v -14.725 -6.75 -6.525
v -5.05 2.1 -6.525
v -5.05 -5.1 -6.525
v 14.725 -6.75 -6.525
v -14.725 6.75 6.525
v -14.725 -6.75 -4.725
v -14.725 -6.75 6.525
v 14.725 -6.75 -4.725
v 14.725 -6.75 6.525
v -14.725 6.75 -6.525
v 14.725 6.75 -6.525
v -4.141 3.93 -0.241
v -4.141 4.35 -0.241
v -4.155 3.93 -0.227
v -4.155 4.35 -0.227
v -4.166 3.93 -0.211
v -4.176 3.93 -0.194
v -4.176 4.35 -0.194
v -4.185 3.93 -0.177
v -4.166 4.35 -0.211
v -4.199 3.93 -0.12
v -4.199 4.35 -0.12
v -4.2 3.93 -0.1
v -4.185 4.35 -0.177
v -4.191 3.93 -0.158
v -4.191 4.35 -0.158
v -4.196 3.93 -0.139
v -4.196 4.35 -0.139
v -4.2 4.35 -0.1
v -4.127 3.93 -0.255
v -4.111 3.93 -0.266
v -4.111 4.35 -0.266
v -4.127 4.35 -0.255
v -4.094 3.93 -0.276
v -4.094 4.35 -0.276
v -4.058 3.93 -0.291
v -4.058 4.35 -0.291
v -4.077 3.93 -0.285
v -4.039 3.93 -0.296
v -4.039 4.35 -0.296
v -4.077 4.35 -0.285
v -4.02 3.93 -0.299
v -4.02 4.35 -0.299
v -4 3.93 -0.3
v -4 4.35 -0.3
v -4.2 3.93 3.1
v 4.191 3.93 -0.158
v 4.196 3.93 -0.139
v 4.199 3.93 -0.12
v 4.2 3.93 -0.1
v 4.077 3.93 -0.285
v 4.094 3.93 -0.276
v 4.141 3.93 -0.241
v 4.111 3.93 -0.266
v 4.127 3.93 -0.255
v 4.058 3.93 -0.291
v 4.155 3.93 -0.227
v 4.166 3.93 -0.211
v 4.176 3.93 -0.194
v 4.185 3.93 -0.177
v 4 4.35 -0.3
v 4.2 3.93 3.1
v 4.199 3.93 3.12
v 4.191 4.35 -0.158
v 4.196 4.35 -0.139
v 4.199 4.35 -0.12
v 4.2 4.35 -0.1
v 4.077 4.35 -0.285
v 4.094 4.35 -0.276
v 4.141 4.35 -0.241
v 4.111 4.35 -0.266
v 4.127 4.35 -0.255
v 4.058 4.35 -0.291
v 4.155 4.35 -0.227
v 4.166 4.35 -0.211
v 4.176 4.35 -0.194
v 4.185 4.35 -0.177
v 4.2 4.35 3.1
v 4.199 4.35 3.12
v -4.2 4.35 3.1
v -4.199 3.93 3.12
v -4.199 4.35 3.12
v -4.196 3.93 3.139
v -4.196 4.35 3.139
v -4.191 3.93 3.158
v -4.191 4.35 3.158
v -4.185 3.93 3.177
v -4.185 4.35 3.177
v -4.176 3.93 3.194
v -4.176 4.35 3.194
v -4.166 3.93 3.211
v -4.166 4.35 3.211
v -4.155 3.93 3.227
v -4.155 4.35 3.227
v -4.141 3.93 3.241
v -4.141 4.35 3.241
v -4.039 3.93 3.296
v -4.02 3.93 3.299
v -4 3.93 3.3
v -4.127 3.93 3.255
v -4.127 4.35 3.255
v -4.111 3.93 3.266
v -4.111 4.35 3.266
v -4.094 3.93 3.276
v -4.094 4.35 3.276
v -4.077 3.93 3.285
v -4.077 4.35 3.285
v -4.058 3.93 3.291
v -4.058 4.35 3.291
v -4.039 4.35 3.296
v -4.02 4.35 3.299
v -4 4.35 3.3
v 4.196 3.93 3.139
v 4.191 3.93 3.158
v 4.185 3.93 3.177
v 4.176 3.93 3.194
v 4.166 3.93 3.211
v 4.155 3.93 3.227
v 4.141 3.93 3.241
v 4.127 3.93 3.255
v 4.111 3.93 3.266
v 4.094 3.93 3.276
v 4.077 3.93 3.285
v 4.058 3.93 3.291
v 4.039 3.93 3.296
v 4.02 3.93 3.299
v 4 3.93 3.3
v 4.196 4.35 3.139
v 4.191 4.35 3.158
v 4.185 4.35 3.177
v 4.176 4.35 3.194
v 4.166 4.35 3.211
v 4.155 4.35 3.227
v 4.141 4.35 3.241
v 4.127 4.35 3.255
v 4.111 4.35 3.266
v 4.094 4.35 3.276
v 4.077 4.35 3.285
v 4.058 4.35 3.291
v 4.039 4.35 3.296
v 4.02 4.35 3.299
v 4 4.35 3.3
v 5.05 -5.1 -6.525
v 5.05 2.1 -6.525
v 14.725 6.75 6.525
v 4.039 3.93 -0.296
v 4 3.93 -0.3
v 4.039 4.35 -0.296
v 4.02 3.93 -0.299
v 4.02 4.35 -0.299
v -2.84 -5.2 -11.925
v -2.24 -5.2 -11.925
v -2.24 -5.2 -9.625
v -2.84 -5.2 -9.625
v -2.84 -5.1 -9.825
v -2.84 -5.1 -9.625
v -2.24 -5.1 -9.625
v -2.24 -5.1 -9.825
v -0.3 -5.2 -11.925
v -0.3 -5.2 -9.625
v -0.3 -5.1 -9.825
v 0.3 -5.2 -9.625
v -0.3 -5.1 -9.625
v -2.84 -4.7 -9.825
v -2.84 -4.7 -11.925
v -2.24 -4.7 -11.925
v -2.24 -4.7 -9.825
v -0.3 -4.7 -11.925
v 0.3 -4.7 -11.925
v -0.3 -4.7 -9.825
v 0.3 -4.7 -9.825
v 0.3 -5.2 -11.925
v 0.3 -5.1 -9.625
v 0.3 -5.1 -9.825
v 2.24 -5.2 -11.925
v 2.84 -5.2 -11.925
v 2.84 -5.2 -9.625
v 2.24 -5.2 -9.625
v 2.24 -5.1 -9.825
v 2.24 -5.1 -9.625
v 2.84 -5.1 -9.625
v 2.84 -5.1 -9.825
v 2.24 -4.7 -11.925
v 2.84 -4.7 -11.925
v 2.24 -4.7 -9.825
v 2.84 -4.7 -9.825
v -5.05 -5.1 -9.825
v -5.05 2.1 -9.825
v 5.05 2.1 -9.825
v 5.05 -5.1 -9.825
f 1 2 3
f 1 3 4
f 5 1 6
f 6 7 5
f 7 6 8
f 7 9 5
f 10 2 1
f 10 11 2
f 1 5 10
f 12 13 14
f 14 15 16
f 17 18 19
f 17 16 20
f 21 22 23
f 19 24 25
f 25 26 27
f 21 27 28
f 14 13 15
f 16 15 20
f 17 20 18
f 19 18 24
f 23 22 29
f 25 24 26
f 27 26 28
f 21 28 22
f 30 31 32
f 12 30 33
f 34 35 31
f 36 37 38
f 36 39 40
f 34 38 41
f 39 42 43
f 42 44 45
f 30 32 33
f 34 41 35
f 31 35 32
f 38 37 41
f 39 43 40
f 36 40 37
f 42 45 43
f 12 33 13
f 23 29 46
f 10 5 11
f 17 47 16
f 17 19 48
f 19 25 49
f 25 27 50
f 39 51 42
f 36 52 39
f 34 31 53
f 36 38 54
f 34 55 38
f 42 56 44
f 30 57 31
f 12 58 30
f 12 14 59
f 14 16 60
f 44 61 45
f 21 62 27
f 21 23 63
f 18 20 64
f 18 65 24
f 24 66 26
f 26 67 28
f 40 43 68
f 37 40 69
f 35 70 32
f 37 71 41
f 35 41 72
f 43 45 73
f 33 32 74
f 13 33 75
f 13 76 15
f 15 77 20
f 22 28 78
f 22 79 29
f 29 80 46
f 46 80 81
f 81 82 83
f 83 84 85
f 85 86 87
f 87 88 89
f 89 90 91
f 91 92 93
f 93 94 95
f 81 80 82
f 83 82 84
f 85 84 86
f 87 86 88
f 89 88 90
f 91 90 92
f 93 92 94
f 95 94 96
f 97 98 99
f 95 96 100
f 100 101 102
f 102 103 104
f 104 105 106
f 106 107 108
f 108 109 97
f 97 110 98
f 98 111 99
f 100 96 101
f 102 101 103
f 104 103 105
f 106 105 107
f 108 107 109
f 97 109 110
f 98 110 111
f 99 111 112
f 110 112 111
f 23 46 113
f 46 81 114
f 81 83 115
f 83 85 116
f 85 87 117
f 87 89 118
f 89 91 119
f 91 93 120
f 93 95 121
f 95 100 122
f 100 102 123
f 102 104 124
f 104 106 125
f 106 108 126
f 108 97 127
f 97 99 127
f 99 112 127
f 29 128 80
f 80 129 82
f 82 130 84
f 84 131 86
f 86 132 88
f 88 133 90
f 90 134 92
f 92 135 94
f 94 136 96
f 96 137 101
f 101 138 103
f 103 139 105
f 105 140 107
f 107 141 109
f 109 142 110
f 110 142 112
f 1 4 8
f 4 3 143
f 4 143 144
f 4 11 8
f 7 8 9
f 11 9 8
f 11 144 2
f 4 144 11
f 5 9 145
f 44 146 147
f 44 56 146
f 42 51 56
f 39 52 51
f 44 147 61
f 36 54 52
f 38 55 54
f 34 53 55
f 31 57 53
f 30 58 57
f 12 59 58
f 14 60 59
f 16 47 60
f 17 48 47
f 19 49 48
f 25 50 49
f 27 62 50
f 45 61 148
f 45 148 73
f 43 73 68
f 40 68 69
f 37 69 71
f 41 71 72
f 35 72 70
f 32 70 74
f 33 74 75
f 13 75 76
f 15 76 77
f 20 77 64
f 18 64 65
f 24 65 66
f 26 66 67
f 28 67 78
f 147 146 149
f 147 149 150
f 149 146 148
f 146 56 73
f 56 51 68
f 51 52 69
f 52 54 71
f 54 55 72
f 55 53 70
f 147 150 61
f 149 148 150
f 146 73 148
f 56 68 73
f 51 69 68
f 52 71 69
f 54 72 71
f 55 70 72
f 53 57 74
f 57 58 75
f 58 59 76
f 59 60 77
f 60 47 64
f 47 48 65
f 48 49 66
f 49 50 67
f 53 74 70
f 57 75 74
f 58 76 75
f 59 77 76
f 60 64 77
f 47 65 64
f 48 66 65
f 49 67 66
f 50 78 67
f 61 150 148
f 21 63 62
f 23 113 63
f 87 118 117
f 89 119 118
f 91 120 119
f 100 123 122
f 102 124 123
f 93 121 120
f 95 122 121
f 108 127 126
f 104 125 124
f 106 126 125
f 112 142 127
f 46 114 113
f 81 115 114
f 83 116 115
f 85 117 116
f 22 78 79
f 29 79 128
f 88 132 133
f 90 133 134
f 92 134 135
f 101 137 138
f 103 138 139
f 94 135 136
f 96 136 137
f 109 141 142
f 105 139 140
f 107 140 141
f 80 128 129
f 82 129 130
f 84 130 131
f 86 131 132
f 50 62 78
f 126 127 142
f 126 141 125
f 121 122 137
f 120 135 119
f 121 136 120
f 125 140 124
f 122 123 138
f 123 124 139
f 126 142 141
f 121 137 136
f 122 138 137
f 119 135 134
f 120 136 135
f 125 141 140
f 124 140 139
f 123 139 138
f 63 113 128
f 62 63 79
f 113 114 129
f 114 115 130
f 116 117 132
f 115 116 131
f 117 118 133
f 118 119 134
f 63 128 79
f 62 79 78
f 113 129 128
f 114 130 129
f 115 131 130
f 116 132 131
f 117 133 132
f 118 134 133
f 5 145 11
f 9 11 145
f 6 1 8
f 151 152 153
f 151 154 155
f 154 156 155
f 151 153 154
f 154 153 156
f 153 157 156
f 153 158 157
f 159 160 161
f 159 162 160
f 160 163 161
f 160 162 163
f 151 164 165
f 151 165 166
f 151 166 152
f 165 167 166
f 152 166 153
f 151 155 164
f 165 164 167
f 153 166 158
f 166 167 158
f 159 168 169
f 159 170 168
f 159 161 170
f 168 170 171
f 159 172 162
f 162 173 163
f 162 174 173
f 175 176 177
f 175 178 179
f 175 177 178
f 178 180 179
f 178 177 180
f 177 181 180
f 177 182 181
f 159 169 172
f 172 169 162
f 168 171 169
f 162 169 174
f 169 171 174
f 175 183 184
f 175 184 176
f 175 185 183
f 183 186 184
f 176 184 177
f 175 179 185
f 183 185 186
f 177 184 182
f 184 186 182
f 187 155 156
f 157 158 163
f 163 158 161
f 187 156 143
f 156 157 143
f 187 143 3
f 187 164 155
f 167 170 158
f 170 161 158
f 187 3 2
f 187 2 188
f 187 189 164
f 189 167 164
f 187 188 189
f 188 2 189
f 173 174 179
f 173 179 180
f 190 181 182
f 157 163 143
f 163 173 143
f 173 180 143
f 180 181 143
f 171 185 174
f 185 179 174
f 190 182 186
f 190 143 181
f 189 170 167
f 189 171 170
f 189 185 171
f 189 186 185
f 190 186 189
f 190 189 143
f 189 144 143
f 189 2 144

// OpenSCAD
//
// Sharp GP2Y0D413K0F
// Simple mechanical model based on datasheet outline dimensions
//
// Coordinate system:
//   unit: mm
//   origin: center of main body
//   mounting face (PWB / connector side): toward -Z
//
// Notes:
// - This is a practical approximation of the exterior shape from the provided page.
// - Unspecified details are simplified.
// - Lens openings are represented as shallow recesses/reliefs on the front face.
//

$fn = 64;

// ==============================
// Parameters from datasheet
// ==============================

// Main body
body_w = 29.45;   // X
body_h = 13.5;    // Y
body_d = 13.05;   // Z

// Front face features
front_strip_h = 2.3;   // approximate top strip height visible in front view
bottom_skirt_h = 1.9;  // approximate lower strip height visible in front view

// Emitter / detector optical window layout (front view)
emit_center_x_from_left = 4.5;
det_center_x_from_left  = 19.7;
lens_center_y = 0;     // both centers lie on face mid-height in front view

emit_outer_w = 6.2;    // approximated square surround
emit_outer_h = 6.2;

emit_ring_od = 4.9;    // approximated from drawing
emit_ring_id = 3.3;

det_outer_w = 10.3;    // approximated detector lens frame
det_outer_h = 5.9;
det_ring_od = 4.7;
det_ring_id = 0.1;     // effectively filled center look

recess_depth = 0.8;    // shallow recess from front face

// Connector / PWB side
connector_w = 10.1;    // X
connector_h = 7.2;     // Y visible in front view
connector_d = 3.3;     // Z projection from mounting side (reference dim)

pwb_t = 1.2;           // board thickness
pwb_w = 8.0;           // simplified width inside connector
pwb_h = 6.0;           // simplified visible height

// Bottom connector details from bottom view
term_pitch = 2.54;
term_w = 0.6;
term_t = 0.5;
term_len = 2.3;

// Side-profile shoulder approximations
neck_d = 2.0;          // narrow section near front from side view
rear_step_d = 1.8;     // small step near rear / connector side

// Stamp on top
stamp_w = 8.0;
stamp_d = 3.2;
stamp_depth = 0.4;

// ==============================
// Helpers
// ==============================

function x_from_left(xl) = -body_w/2 + xl;

// Front is +Z, mounting/connector side is -Z
front_z =  body_d/2;
rear_z  = -body_d/2;

// ==============================
// Modules
// ==============================

module main_body() {
    difference() {
        cube([body_w, body_h, body_d], center=true);

        // top stamp recess
        translate([0, body_h/2 - 2.4, 1.5])
            rotate([90,0,0])
                linear_extrude(height=stamp_depth + 0.02)
                    offset(r=0.2)
                        square([stamp_w, stamp_d], center=true);
    }
}

module front_optics_detail() {
    // decorative / visible front lens structures, modeled as shallow raised/recessed frames
    // emitter side
    ex = x_from_left(emit_center_x_from_left);
    dx = x_from_left(det_center_x_from_left);

    // recessed rectangular areas
    color("dimgray")
    difference() {
        union() {
            // emitter square bezel
            translate([ex, 0, front_z - recess_depth/2])
                cube([emit_outer_w, emit_outer_h, recess_depth], center=true);

            // detector rectangular bezel
            translate([dx, 0, front_z - recess_depth/2])
                cube([det_outer_w, det_outer_h, recess_depth], center=true);
        }

        // emitter circular ring opening
        translate([ex, 0, front_z - recess_depth - 0.01])
            cylinder(h=recess_depth + 0.04, d=emit_ring_od, center=false);

        // detector circular opening
        translate([dx, 0, front_z - recess_depth - 0.01])
            cylinder(h=recess_depth + 0.04, d=det_ring_od, center=false);
    }

    // emitter ring lip
    color("black")
    translate([ex, 0, front_z - recess_depth/2])
    difference() {
        cylinder(h=recess_depth*0.9, d=emit_ring_od, center=true);
        cylinder(h=recess_depth*1.2, d=emit_ring_id, center=true);
    }

    // detector ring lip
    color("black")
    translate([dx, 0, front_z - recess_depth/2])
    difference() {
        cylinder(h=recess_depth*0.9, d=det_ring_od, center=true);
        if (det_ring_id > 0.2)
            cylinder(h=recess_depth*1.2, d=det_ring_id, center=true);
    }
}

module body_side_profile_accents() {
    // Simple side-profile approximation: front narrow nose and rear lower connector shoulder
    // Implemented as additive/subtractive bands across full width

    // front narrow nose band
    translate([0, 0, front_z - neck_d/2])
        cube([body_w, 7.2, neck_d], center=true);

    // rear small lower shelf toward connector side
    translate([0, -body_h/2 + 2.0, rear_z + rear_step_d/2])
        cube([body_w, 4.0, rear_step_d], center=true);
}

module connector_shell() {
    // connector protruding from mounting side (-Z)
    translate([0, -1.5, rear_z - connector_d/2])
        cube([connector_w, connector_h, connector_d], center=true);
}

module pwb_stub() {
    // visible board tongue inside connector area
    color([0.75, 0.65, 0.35])
    translate([0, -1.2, rear_z - pwb_t/2 - 0.2])
        cube([pwb_w, pwb_h, pwb_t], center=true);
}

module terminals() {
    color("silver")
    for (i = [-1,0,1]) {
        translate([i*term_pitch, -body_h/2 + 1.8, rear_z - connector_d - term_len/2 + 0.2])
            cube([term_w, term_t, term_len], center=true);
    }
}

module gp2y0d413k0f() {
    union() {
        color([0.15,0.15,0.15]) main_body();
        color([0.12,0.12,0.12]) body_side_profile_accents();
        color([0.18,0.18,0.18]) connector_shell();
        pwb_stub();
        terminals();
        front_optics_detail();
    }
}

// ==============================
// Render
// ==============================

gp2y0d413k0f();
